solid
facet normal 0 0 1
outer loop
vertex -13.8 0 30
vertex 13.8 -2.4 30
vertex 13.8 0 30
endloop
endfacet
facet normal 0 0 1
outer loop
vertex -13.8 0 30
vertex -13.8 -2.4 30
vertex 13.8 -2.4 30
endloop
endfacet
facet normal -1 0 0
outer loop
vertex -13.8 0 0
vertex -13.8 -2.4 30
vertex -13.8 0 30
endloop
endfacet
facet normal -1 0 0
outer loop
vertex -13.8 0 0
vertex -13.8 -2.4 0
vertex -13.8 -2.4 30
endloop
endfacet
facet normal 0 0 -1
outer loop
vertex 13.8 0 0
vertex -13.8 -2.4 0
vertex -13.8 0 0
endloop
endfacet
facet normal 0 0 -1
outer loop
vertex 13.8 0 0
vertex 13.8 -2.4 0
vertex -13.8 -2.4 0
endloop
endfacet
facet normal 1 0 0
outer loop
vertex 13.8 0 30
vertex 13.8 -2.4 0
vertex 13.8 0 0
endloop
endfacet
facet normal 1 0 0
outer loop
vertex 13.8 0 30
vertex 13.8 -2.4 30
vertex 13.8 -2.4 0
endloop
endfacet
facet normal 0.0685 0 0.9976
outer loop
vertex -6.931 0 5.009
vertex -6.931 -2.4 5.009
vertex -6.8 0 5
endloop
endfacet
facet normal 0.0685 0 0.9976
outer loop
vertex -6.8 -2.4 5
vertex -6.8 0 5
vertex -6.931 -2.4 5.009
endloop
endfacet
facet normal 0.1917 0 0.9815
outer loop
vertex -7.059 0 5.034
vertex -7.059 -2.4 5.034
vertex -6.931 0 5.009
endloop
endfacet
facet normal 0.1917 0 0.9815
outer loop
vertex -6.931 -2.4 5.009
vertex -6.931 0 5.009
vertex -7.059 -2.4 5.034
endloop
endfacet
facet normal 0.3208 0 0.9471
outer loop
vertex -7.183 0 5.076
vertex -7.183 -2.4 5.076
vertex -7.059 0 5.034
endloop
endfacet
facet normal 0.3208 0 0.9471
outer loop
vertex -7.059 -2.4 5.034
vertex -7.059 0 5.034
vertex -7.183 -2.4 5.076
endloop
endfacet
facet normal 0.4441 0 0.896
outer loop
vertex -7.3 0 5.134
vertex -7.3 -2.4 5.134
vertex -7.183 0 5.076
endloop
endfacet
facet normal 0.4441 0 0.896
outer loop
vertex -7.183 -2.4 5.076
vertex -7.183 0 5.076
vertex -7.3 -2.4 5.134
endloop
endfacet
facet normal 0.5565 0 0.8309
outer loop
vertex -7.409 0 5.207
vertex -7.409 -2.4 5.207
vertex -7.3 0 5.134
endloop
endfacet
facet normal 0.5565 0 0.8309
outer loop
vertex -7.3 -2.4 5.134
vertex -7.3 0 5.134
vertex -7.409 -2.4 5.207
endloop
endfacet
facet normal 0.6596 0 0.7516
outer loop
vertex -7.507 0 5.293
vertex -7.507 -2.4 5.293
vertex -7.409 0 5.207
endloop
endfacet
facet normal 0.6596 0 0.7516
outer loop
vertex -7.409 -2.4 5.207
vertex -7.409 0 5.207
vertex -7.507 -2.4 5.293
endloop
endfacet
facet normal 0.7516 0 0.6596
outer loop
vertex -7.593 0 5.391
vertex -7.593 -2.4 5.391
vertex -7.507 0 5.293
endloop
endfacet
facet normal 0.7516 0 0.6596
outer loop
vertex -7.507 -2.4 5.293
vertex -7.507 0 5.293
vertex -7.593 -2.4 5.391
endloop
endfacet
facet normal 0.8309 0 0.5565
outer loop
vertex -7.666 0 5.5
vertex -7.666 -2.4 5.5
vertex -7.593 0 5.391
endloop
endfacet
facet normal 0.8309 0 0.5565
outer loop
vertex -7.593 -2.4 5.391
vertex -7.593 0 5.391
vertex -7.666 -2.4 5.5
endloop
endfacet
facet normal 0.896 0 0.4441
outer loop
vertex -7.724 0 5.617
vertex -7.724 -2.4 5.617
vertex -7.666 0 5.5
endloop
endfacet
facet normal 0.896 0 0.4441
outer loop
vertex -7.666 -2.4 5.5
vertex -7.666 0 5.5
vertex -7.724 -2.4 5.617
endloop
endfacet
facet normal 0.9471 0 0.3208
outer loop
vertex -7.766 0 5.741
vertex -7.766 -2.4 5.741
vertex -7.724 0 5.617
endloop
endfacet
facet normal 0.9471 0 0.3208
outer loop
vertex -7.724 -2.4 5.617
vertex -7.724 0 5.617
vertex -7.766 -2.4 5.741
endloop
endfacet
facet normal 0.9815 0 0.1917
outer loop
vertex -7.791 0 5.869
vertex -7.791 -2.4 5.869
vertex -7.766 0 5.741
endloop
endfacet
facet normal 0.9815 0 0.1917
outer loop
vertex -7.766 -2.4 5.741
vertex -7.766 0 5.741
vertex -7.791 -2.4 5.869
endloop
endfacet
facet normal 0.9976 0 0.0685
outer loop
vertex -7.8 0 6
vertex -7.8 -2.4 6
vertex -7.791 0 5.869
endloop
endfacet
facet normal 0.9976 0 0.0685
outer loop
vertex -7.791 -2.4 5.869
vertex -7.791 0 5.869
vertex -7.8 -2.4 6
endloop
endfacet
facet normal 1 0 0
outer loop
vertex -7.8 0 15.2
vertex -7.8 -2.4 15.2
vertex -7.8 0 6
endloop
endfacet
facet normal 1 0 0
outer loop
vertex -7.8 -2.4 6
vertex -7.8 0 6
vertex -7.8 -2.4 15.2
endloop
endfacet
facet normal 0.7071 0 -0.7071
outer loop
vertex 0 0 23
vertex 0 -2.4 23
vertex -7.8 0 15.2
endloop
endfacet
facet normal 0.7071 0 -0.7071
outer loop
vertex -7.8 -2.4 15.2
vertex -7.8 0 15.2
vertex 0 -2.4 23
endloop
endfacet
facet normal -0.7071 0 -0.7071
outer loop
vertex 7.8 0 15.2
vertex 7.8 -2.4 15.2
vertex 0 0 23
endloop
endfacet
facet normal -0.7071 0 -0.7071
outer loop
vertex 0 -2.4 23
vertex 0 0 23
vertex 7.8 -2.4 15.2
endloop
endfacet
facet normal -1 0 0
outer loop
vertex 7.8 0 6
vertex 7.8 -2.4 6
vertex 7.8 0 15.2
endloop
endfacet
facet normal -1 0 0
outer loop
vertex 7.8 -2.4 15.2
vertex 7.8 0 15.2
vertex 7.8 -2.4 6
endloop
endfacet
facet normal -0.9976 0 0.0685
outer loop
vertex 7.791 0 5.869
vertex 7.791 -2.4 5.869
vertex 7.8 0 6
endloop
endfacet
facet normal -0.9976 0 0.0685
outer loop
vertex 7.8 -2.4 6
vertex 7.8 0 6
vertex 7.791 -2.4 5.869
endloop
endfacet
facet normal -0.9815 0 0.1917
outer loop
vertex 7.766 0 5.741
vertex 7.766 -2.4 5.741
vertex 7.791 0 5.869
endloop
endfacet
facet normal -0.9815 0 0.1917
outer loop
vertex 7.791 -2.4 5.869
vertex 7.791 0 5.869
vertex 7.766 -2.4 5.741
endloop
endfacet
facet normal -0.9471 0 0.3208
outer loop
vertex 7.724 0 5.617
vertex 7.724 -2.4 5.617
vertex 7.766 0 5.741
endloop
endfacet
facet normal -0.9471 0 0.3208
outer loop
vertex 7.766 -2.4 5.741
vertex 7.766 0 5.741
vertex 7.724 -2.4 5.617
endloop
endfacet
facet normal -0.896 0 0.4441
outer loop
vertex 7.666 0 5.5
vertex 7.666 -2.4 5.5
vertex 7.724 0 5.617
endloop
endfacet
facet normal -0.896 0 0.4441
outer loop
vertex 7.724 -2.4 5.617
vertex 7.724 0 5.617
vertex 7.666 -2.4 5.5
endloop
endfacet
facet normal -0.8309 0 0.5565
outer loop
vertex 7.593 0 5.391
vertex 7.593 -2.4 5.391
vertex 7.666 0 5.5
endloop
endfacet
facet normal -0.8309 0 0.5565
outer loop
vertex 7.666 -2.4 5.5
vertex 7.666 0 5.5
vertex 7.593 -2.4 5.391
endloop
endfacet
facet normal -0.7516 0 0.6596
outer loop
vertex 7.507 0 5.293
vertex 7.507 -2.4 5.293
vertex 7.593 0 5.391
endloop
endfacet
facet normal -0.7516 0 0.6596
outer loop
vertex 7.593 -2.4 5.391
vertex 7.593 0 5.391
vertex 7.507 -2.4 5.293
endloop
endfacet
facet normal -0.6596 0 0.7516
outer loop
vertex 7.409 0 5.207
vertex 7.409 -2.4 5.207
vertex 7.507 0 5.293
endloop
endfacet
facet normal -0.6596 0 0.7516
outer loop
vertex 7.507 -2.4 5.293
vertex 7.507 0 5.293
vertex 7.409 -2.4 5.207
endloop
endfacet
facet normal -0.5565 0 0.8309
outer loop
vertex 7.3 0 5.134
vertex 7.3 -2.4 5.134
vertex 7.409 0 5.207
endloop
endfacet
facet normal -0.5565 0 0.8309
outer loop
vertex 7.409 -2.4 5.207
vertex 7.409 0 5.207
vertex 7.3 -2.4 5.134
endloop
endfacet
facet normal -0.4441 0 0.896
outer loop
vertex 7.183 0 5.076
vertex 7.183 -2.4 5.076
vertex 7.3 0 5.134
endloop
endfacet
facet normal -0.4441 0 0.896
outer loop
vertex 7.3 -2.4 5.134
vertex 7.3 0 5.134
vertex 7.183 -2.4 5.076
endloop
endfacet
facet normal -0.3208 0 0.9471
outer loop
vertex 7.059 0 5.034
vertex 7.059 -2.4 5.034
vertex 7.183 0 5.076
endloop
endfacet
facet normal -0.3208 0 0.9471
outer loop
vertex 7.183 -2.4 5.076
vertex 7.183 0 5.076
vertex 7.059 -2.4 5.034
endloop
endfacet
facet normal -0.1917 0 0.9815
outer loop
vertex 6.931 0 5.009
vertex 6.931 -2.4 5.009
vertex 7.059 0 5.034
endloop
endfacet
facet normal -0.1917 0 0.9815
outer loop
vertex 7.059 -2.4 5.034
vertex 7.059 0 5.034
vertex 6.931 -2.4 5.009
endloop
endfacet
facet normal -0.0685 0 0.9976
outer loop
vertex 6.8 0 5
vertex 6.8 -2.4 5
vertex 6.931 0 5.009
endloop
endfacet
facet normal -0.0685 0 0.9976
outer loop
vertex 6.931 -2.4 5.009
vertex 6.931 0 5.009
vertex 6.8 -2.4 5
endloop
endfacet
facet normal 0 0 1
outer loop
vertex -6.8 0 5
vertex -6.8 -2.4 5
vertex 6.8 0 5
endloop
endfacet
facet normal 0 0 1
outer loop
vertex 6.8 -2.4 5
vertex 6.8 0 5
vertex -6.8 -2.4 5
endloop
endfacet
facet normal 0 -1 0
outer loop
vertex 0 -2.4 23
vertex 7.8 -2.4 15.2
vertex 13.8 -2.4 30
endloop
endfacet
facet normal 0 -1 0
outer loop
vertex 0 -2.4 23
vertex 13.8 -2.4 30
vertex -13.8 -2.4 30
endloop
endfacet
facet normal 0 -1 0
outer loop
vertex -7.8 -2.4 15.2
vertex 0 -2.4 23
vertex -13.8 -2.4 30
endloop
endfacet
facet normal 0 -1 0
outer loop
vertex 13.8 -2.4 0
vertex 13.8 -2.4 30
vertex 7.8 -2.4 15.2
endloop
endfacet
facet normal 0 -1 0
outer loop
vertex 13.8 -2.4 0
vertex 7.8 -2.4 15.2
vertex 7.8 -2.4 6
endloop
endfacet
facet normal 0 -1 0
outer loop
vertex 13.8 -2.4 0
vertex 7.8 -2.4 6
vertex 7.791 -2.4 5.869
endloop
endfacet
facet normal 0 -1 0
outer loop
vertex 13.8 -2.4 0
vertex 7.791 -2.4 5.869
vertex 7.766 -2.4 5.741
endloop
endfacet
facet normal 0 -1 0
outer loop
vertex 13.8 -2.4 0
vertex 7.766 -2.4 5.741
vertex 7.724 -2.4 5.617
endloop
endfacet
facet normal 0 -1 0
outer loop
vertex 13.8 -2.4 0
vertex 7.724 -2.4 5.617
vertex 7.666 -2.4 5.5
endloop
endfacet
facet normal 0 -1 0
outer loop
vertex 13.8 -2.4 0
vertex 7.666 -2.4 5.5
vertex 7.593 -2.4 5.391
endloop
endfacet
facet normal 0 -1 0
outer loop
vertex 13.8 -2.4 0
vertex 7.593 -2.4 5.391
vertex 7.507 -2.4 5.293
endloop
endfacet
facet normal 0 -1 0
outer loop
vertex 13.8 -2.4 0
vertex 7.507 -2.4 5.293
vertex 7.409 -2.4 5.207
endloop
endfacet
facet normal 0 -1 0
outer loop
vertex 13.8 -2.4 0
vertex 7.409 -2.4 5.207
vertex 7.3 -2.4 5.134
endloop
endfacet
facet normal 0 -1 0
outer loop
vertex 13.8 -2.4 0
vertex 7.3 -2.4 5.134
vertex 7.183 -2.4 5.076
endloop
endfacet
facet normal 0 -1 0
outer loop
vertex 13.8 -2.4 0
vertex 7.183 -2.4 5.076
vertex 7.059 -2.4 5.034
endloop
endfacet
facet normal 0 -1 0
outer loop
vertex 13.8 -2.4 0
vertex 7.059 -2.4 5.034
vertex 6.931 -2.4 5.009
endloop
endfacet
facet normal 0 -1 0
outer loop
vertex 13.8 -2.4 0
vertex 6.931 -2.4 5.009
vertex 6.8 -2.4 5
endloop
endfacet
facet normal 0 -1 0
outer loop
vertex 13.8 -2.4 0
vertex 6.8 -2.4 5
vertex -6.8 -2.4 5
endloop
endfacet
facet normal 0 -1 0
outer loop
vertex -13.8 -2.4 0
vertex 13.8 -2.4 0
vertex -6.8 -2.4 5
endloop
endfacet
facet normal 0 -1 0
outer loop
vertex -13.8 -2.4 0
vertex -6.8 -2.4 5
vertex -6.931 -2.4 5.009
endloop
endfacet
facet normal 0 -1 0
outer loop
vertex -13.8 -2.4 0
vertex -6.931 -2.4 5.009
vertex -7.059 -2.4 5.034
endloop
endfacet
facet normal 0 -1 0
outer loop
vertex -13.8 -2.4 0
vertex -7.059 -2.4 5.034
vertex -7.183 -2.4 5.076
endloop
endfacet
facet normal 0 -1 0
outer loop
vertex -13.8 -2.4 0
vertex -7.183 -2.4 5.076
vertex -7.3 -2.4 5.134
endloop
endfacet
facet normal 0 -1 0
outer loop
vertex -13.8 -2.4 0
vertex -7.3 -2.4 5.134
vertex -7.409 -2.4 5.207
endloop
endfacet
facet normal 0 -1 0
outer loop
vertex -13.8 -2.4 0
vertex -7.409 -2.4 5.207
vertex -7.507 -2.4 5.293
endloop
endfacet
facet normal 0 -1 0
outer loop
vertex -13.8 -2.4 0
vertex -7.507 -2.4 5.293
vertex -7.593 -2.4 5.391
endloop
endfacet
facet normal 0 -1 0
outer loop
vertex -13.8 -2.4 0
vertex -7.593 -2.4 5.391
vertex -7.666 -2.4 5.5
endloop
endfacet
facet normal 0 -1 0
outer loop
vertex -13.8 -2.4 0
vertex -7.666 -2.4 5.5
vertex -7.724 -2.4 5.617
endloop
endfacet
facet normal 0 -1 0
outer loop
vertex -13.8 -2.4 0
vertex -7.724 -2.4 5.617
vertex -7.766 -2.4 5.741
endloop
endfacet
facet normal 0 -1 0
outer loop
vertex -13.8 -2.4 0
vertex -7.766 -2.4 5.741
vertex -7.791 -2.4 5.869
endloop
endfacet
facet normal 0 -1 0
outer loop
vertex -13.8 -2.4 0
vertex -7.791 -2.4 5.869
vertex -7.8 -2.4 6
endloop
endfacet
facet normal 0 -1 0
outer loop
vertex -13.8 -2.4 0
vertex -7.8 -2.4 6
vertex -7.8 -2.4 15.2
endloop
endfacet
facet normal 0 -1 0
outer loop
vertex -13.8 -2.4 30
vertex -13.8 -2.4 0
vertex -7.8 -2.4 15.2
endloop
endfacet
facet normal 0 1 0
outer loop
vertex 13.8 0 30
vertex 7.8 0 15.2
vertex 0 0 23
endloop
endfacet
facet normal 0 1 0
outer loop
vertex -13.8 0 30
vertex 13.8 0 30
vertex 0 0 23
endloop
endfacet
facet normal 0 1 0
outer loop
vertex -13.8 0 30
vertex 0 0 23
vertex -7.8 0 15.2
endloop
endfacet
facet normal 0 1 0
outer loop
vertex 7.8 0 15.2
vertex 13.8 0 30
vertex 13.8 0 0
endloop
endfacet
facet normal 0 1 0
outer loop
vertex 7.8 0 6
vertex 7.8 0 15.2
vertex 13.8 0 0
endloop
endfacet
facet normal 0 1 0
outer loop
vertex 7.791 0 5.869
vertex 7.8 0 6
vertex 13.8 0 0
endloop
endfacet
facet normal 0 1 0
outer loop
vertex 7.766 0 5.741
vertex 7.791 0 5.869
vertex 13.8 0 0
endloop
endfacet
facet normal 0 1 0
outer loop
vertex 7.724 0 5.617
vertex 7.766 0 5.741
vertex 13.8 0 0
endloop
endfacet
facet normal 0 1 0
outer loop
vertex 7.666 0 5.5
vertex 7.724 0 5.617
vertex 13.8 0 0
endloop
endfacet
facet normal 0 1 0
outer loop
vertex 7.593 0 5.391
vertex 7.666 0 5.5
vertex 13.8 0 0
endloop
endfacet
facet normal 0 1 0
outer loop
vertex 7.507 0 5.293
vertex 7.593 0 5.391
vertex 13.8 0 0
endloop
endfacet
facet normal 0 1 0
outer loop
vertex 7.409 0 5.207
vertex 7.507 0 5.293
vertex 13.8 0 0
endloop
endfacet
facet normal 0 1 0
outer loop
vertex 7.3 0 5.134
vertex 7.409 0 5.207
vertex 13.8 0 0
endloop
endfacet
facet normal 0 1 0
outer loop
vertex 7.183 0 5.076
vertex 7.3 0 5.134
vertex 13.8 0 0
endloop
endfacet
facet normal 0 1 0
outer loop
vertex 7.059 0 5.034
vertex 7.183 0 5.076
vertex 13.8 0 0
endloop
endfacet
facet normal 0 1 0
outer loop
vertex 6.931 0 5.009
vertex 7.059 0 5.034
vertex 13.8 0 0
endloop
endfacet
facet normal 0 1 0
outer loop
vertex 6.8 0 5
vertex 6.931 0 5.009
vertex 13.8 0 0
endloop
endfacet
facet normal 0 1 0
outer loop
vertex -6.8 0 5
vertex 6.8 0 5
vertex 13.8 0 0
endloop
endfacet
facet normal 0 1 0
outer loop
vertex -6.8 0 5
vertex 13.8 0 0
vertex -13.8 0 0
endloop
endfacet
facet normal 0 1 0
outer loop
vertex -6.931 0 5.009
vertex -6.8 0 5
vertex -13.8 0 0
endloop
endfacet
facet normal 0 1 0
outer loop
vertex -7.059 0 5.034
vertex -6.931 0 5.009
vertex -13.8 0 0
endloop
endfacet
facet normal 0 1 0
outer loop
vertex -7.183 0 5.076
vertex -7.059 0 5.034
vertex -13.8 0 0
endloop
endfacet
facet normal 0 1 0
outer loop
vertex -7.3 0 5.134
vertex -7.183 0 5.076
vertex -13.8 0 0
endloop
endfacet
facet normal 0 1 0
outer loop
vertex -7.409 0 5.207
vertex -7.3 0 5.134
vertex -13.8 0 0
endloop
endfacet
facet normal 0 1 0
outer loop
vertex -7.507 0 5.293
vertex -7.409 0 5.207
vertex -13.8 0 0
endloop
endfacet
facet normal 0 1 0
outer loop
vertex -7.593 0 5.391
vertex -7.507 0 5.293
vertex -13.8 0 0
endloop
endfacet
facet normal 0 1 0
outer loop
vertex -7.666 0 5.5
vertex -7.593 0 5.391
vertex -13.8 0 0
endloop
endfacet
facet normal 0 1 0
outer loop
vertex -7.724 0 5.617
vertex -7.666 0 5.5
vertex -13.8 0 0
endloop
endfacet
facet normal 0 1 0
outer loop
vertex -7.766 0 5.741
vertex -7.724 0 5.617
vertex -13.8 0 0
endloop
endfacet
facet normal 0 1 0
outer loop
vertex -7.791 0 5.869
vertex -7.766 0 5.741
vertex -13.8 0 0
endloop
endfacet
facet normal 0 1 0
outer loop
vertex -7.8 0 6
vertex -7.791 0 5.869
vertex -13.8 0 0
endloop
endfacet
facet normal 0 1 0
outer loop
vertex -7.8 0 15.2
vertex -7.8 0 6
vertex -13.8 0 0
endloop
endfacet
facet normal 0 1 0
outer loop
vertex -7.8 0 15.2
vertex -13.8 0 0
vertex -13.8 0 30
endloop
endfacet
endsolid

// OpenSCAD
// GENERATED by build.py --coupon. A wall-thickness plate with one slot,
// printed standing up like a wall so the pointed top prints as it would in a box.
include <../scad/enclosure.scad>
WALL = 2.4;
rotate([90, 0, 0]) linear_extrude(WALL) difference() {
  translate([-13.8, 0]) square([27.6, 30.0]);
  translate([0, 10.1]) pointed2d(15.6, 10.2, 1.0, 7.8);
}
